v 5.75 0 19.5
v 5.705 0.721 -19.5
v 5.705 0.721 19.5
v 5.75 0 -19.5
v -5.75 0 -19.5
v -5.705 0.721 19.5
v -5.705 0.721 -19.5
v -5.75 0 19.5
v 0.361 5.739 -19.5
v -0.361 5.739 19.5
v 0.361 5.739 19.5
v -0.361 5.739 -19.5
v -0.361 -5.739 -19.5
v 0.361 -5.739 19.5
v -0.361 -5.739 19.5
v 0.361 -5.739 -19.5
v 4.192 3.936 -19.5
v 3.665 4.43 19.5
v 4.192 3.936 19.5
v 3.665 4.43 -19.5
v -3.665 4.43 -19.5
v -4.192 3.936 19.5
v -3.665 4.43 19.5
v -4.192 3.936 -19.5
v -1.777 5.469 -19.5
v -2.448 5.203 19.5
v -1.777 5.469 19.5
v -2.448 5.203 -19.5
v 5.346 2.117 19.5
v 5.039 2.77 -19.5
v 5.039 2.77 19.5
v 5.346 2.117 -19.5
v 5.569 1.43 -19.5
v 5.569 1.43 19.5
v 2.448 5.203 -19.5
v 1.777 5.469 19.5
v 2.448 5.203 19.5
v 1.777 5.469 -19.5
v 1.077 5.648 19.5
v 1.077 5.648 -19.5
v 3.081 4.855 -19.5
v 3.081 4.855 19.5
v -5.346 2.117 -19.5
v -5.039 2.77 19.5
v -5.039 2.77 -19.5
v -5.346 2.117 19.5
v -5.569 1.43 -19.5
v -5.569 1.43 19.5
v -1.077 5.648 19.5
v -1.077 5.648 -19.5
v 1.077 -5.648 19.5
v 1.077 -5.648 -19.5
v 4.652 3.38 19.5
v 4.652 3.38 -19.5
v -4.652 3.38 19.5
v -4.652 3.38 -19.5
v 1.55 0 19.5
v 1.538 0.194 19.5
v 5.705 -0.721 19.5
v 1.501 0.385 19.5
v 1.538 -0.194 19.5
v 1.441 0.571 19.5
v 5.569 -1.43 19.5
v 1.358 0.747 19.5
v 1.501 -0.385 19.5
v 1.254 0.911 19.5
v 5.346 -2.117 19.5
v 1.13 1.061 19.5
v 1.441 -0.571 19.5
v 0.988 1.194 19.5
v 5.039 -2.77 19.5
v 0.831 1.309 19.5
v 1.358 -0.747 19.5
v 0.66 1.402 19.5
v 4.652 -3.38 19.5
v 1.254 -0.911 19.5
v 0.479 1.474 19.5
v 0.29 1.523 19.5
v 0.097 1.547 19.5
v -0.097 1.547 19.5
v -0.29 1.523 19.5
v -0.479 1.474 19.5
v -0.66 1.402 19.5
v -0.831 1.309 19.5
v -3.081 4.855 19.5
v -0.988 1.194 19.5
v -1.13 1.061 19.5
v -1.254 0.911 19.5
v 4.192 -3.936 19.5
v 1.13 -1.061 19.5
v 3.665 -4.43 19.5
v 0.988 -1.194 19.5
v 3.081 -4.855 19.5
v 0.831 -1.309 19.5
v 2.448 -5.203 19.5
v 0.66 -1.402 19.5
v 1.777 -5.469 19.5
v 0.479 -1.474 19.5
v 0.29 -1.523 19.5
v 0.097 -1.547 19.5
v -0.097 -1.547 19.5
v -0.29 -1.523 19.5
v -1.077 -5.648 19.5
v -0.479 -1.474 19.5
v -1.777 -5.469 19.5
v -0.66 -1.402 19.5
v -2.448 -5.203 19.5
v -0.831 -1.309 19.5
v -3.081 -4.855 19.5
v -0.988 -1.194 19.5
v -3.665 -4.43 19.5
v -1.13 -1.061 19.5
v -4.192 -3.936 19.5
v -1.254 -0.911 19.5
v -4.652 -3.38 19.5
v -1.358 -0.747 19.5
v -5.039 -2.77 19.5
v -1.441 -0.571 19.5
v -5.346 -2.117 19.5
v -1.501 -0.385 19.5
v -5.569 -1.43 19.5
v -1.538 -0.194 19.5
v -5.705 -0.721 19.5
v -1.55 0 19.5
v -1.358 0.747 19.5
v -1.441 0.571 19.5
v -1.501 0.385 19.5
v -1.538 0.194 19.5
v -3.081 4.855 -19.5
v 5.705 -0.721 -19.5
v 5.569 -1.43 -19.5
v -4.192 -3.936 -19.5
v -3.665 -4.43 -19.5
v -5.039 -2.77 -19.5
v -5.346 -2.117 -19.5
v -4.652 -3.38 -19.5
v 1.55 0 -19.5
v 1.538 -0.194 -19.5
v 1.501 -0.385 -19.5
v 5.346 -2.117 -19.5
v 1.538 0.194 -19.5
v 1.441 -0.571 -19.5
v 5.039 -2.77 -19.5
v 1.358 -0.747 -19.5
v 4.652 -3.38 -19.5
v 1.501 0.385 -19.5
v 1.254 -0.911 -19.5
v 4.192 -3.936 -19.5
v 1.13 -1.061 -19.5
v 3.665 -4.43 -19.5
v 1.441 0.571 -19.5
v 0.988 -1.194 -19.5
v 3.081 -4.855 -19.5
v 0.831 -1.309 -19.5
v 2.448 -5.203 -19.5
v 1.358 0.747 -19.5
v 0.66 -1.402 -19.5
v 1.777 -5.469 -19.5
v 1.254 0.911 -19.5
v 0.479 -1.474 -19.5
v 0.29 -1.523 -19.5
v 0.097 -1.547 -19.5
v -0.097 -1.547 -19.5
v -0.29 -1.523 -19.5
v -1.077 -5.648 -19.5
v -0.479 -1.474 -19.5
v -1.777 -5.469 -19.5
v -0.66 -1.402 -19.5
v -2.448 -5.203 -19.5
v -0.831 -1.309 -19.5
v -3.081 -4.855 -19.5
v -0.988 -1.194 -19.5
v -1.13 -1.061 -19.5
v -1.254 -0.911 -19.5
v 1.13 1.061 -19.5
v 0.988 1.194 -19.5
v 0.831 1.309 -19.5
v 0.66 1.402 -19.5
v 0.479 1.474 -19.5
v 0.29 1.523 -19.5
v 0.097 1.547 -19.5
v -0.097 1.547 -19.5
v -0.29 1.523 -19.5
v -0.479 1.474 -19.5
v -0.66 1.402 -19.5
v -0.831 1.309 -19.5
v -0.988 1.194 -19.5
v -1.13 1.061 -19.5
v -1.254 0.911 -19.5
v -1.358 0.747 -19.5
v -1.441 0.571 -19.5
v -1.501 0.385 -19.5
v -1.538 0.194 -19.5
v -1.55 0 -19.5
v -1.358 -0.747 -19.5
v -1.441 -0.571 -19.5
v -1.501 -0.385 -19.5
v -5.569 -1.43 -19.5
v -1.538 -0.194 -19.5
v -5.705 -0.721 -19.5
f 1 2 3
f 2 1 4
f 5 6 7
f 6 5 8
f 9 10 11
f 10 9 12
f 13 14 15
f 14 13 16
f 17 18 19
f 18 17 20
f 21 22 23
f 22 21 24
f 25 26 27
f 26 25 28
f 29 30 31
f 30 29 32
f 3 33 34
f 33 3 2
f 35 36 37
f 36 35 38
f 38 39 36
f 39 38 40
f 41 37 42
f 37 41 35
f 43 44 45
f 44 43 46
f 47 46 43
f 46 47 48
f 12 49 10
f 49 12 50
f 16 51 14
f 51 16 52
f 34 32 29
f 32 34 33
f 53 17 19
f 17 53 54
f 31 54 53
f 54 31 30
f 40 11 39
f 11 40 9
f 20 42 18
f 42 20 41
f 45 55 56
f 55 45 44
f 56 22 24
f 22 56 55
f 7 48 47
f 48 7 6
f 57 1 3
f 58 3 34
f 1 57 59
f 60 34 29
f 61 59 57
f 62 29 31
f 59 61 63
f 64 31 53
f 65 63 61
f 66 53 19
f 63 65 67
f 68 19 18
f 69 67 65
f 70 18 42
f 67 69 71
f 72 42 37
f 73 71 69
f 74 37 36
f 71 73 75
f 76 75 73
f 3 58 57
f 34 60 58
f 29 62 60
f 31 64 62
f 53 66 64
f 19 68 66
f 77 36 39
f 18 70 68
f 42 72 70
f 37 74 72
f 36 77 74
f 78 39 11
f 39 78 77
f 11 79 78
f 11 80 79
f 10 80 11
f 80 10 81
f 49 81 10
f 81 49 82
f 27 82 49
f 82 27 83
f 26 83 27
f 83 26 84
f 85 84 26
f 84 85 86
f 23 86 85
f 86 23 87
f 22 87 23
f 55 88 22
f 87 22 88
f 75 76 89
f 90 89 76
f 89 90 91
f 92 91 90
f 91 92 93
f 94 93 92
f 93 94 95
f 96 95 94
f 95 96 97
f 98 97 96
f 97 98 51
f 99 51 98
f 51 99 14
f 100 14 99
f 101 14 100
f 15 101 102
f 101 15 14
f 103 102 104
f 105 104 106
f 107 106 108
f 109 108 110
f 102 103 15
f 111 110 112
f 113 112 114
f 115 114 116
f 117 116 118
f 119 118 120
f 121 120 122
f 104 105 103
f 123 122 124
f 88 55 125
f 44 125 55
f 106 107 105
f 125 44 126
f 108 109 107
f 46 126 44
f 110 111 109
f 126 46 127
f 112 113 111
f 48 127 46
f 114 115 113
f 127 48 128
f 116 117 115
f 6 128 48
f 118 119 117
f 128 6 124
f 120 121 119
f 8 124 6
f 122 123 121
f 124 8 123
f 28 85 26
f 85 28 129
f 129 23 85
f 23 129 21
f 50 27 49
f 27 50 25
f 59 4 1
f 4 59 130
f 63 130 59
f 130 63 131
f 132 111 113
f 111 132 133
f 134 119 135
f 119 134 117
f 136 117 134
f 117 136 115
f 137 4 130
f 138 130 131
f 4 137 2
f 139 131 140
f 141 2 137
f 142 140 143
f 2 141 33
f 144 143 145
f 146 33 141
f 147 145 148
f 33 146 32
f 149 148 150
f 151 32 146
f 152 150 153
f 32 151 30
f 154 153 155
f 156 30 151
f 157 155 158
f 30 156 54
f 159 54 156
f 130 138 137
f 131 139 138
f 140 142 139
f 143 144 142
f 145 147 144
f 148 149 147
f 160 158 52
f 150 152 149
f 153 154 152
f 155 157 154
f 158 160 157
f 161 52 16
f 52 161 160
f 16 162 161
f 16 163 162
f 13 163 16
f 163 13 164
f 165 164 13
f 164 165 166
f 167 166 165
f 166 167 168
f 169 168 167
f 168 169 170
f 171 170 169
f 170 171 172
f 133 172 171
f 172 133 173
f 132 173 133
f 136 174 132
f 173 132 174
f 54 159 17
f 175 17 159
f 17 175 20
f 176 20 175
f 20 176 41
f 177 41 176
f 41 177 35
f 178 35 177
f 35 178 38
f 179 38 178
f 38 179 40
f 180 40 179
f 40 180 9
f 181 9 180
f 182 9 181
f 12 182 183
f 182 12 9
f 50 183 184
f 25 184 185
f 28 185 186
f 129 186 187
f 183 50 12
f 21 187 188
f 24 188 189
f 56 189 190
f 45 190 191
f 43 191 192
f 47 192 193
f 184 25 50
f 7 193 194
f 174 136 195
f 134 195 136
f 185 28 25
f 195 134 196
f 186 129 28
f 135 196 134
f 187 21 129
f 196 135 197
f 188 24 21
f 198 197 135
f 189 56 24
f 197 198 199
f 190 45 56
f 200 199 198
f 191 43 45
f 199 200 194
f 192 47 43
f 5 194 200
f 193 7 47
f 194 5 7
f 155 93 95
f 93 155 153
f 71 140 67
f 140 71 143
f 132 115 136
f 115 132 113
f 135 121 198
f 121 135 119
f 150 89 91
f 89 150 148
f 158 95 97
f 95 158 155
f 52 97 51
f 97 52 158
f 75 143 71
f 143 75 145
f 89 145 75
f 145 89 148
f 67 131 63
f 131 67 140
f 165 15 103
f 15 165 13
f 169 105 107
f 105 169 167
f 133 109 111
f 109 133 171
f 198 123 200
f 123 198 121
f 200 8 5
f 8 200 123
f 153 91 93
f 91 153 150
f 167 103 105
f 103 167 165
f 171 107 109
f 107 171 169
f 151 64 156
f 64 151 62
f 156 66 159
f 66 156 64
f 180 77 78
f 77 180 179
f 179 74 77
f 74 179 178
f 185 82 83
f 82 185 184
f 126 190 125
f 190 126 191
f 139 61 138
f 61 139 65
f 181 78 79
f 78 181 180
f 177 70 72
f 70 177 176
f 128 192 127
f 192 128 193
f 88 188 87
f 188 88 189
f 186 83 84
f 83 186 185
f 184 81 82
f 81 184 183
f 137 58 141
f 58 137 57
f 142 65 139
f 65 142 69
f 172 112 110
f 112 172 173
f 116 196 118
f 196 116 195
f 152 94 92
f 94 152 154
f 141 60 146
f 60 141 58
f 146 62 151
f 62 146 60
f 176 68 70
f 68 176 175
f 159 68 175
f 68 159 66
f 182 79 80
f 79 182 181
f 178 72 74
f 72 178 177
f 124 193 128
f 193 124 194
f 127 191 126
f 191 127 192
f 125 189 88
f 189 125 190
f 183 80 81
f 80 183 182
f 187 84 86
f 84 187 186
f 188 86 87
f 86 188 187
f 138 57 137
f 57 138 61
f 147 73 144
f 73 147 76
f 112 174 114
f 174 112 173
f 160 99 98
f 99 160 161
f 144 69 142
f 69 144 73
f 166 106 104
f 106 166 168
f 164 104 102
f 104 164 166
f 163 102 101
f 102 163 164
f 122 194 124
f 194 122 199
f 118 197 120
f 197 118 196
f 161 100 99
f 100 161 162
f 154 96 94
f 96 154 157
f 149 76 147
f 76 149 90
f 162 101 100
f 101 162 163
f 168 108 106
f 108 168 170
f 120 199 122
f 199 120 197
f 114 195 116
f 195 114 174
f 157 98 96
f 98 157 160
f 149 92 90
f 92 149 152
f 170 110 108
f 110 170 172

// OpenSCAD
$fn = 50;


difference() {
	union() {
		translate(v = [0, 0, -19.5000000000]) {
			cylinder(h = 39, r = 5.7500000000);
		}
	}
	union() {
		translate(v = [0, 0, -100.0000000000]) {
			cylinder(h = 200, r = 1.5500000000);
		}
	}
}
